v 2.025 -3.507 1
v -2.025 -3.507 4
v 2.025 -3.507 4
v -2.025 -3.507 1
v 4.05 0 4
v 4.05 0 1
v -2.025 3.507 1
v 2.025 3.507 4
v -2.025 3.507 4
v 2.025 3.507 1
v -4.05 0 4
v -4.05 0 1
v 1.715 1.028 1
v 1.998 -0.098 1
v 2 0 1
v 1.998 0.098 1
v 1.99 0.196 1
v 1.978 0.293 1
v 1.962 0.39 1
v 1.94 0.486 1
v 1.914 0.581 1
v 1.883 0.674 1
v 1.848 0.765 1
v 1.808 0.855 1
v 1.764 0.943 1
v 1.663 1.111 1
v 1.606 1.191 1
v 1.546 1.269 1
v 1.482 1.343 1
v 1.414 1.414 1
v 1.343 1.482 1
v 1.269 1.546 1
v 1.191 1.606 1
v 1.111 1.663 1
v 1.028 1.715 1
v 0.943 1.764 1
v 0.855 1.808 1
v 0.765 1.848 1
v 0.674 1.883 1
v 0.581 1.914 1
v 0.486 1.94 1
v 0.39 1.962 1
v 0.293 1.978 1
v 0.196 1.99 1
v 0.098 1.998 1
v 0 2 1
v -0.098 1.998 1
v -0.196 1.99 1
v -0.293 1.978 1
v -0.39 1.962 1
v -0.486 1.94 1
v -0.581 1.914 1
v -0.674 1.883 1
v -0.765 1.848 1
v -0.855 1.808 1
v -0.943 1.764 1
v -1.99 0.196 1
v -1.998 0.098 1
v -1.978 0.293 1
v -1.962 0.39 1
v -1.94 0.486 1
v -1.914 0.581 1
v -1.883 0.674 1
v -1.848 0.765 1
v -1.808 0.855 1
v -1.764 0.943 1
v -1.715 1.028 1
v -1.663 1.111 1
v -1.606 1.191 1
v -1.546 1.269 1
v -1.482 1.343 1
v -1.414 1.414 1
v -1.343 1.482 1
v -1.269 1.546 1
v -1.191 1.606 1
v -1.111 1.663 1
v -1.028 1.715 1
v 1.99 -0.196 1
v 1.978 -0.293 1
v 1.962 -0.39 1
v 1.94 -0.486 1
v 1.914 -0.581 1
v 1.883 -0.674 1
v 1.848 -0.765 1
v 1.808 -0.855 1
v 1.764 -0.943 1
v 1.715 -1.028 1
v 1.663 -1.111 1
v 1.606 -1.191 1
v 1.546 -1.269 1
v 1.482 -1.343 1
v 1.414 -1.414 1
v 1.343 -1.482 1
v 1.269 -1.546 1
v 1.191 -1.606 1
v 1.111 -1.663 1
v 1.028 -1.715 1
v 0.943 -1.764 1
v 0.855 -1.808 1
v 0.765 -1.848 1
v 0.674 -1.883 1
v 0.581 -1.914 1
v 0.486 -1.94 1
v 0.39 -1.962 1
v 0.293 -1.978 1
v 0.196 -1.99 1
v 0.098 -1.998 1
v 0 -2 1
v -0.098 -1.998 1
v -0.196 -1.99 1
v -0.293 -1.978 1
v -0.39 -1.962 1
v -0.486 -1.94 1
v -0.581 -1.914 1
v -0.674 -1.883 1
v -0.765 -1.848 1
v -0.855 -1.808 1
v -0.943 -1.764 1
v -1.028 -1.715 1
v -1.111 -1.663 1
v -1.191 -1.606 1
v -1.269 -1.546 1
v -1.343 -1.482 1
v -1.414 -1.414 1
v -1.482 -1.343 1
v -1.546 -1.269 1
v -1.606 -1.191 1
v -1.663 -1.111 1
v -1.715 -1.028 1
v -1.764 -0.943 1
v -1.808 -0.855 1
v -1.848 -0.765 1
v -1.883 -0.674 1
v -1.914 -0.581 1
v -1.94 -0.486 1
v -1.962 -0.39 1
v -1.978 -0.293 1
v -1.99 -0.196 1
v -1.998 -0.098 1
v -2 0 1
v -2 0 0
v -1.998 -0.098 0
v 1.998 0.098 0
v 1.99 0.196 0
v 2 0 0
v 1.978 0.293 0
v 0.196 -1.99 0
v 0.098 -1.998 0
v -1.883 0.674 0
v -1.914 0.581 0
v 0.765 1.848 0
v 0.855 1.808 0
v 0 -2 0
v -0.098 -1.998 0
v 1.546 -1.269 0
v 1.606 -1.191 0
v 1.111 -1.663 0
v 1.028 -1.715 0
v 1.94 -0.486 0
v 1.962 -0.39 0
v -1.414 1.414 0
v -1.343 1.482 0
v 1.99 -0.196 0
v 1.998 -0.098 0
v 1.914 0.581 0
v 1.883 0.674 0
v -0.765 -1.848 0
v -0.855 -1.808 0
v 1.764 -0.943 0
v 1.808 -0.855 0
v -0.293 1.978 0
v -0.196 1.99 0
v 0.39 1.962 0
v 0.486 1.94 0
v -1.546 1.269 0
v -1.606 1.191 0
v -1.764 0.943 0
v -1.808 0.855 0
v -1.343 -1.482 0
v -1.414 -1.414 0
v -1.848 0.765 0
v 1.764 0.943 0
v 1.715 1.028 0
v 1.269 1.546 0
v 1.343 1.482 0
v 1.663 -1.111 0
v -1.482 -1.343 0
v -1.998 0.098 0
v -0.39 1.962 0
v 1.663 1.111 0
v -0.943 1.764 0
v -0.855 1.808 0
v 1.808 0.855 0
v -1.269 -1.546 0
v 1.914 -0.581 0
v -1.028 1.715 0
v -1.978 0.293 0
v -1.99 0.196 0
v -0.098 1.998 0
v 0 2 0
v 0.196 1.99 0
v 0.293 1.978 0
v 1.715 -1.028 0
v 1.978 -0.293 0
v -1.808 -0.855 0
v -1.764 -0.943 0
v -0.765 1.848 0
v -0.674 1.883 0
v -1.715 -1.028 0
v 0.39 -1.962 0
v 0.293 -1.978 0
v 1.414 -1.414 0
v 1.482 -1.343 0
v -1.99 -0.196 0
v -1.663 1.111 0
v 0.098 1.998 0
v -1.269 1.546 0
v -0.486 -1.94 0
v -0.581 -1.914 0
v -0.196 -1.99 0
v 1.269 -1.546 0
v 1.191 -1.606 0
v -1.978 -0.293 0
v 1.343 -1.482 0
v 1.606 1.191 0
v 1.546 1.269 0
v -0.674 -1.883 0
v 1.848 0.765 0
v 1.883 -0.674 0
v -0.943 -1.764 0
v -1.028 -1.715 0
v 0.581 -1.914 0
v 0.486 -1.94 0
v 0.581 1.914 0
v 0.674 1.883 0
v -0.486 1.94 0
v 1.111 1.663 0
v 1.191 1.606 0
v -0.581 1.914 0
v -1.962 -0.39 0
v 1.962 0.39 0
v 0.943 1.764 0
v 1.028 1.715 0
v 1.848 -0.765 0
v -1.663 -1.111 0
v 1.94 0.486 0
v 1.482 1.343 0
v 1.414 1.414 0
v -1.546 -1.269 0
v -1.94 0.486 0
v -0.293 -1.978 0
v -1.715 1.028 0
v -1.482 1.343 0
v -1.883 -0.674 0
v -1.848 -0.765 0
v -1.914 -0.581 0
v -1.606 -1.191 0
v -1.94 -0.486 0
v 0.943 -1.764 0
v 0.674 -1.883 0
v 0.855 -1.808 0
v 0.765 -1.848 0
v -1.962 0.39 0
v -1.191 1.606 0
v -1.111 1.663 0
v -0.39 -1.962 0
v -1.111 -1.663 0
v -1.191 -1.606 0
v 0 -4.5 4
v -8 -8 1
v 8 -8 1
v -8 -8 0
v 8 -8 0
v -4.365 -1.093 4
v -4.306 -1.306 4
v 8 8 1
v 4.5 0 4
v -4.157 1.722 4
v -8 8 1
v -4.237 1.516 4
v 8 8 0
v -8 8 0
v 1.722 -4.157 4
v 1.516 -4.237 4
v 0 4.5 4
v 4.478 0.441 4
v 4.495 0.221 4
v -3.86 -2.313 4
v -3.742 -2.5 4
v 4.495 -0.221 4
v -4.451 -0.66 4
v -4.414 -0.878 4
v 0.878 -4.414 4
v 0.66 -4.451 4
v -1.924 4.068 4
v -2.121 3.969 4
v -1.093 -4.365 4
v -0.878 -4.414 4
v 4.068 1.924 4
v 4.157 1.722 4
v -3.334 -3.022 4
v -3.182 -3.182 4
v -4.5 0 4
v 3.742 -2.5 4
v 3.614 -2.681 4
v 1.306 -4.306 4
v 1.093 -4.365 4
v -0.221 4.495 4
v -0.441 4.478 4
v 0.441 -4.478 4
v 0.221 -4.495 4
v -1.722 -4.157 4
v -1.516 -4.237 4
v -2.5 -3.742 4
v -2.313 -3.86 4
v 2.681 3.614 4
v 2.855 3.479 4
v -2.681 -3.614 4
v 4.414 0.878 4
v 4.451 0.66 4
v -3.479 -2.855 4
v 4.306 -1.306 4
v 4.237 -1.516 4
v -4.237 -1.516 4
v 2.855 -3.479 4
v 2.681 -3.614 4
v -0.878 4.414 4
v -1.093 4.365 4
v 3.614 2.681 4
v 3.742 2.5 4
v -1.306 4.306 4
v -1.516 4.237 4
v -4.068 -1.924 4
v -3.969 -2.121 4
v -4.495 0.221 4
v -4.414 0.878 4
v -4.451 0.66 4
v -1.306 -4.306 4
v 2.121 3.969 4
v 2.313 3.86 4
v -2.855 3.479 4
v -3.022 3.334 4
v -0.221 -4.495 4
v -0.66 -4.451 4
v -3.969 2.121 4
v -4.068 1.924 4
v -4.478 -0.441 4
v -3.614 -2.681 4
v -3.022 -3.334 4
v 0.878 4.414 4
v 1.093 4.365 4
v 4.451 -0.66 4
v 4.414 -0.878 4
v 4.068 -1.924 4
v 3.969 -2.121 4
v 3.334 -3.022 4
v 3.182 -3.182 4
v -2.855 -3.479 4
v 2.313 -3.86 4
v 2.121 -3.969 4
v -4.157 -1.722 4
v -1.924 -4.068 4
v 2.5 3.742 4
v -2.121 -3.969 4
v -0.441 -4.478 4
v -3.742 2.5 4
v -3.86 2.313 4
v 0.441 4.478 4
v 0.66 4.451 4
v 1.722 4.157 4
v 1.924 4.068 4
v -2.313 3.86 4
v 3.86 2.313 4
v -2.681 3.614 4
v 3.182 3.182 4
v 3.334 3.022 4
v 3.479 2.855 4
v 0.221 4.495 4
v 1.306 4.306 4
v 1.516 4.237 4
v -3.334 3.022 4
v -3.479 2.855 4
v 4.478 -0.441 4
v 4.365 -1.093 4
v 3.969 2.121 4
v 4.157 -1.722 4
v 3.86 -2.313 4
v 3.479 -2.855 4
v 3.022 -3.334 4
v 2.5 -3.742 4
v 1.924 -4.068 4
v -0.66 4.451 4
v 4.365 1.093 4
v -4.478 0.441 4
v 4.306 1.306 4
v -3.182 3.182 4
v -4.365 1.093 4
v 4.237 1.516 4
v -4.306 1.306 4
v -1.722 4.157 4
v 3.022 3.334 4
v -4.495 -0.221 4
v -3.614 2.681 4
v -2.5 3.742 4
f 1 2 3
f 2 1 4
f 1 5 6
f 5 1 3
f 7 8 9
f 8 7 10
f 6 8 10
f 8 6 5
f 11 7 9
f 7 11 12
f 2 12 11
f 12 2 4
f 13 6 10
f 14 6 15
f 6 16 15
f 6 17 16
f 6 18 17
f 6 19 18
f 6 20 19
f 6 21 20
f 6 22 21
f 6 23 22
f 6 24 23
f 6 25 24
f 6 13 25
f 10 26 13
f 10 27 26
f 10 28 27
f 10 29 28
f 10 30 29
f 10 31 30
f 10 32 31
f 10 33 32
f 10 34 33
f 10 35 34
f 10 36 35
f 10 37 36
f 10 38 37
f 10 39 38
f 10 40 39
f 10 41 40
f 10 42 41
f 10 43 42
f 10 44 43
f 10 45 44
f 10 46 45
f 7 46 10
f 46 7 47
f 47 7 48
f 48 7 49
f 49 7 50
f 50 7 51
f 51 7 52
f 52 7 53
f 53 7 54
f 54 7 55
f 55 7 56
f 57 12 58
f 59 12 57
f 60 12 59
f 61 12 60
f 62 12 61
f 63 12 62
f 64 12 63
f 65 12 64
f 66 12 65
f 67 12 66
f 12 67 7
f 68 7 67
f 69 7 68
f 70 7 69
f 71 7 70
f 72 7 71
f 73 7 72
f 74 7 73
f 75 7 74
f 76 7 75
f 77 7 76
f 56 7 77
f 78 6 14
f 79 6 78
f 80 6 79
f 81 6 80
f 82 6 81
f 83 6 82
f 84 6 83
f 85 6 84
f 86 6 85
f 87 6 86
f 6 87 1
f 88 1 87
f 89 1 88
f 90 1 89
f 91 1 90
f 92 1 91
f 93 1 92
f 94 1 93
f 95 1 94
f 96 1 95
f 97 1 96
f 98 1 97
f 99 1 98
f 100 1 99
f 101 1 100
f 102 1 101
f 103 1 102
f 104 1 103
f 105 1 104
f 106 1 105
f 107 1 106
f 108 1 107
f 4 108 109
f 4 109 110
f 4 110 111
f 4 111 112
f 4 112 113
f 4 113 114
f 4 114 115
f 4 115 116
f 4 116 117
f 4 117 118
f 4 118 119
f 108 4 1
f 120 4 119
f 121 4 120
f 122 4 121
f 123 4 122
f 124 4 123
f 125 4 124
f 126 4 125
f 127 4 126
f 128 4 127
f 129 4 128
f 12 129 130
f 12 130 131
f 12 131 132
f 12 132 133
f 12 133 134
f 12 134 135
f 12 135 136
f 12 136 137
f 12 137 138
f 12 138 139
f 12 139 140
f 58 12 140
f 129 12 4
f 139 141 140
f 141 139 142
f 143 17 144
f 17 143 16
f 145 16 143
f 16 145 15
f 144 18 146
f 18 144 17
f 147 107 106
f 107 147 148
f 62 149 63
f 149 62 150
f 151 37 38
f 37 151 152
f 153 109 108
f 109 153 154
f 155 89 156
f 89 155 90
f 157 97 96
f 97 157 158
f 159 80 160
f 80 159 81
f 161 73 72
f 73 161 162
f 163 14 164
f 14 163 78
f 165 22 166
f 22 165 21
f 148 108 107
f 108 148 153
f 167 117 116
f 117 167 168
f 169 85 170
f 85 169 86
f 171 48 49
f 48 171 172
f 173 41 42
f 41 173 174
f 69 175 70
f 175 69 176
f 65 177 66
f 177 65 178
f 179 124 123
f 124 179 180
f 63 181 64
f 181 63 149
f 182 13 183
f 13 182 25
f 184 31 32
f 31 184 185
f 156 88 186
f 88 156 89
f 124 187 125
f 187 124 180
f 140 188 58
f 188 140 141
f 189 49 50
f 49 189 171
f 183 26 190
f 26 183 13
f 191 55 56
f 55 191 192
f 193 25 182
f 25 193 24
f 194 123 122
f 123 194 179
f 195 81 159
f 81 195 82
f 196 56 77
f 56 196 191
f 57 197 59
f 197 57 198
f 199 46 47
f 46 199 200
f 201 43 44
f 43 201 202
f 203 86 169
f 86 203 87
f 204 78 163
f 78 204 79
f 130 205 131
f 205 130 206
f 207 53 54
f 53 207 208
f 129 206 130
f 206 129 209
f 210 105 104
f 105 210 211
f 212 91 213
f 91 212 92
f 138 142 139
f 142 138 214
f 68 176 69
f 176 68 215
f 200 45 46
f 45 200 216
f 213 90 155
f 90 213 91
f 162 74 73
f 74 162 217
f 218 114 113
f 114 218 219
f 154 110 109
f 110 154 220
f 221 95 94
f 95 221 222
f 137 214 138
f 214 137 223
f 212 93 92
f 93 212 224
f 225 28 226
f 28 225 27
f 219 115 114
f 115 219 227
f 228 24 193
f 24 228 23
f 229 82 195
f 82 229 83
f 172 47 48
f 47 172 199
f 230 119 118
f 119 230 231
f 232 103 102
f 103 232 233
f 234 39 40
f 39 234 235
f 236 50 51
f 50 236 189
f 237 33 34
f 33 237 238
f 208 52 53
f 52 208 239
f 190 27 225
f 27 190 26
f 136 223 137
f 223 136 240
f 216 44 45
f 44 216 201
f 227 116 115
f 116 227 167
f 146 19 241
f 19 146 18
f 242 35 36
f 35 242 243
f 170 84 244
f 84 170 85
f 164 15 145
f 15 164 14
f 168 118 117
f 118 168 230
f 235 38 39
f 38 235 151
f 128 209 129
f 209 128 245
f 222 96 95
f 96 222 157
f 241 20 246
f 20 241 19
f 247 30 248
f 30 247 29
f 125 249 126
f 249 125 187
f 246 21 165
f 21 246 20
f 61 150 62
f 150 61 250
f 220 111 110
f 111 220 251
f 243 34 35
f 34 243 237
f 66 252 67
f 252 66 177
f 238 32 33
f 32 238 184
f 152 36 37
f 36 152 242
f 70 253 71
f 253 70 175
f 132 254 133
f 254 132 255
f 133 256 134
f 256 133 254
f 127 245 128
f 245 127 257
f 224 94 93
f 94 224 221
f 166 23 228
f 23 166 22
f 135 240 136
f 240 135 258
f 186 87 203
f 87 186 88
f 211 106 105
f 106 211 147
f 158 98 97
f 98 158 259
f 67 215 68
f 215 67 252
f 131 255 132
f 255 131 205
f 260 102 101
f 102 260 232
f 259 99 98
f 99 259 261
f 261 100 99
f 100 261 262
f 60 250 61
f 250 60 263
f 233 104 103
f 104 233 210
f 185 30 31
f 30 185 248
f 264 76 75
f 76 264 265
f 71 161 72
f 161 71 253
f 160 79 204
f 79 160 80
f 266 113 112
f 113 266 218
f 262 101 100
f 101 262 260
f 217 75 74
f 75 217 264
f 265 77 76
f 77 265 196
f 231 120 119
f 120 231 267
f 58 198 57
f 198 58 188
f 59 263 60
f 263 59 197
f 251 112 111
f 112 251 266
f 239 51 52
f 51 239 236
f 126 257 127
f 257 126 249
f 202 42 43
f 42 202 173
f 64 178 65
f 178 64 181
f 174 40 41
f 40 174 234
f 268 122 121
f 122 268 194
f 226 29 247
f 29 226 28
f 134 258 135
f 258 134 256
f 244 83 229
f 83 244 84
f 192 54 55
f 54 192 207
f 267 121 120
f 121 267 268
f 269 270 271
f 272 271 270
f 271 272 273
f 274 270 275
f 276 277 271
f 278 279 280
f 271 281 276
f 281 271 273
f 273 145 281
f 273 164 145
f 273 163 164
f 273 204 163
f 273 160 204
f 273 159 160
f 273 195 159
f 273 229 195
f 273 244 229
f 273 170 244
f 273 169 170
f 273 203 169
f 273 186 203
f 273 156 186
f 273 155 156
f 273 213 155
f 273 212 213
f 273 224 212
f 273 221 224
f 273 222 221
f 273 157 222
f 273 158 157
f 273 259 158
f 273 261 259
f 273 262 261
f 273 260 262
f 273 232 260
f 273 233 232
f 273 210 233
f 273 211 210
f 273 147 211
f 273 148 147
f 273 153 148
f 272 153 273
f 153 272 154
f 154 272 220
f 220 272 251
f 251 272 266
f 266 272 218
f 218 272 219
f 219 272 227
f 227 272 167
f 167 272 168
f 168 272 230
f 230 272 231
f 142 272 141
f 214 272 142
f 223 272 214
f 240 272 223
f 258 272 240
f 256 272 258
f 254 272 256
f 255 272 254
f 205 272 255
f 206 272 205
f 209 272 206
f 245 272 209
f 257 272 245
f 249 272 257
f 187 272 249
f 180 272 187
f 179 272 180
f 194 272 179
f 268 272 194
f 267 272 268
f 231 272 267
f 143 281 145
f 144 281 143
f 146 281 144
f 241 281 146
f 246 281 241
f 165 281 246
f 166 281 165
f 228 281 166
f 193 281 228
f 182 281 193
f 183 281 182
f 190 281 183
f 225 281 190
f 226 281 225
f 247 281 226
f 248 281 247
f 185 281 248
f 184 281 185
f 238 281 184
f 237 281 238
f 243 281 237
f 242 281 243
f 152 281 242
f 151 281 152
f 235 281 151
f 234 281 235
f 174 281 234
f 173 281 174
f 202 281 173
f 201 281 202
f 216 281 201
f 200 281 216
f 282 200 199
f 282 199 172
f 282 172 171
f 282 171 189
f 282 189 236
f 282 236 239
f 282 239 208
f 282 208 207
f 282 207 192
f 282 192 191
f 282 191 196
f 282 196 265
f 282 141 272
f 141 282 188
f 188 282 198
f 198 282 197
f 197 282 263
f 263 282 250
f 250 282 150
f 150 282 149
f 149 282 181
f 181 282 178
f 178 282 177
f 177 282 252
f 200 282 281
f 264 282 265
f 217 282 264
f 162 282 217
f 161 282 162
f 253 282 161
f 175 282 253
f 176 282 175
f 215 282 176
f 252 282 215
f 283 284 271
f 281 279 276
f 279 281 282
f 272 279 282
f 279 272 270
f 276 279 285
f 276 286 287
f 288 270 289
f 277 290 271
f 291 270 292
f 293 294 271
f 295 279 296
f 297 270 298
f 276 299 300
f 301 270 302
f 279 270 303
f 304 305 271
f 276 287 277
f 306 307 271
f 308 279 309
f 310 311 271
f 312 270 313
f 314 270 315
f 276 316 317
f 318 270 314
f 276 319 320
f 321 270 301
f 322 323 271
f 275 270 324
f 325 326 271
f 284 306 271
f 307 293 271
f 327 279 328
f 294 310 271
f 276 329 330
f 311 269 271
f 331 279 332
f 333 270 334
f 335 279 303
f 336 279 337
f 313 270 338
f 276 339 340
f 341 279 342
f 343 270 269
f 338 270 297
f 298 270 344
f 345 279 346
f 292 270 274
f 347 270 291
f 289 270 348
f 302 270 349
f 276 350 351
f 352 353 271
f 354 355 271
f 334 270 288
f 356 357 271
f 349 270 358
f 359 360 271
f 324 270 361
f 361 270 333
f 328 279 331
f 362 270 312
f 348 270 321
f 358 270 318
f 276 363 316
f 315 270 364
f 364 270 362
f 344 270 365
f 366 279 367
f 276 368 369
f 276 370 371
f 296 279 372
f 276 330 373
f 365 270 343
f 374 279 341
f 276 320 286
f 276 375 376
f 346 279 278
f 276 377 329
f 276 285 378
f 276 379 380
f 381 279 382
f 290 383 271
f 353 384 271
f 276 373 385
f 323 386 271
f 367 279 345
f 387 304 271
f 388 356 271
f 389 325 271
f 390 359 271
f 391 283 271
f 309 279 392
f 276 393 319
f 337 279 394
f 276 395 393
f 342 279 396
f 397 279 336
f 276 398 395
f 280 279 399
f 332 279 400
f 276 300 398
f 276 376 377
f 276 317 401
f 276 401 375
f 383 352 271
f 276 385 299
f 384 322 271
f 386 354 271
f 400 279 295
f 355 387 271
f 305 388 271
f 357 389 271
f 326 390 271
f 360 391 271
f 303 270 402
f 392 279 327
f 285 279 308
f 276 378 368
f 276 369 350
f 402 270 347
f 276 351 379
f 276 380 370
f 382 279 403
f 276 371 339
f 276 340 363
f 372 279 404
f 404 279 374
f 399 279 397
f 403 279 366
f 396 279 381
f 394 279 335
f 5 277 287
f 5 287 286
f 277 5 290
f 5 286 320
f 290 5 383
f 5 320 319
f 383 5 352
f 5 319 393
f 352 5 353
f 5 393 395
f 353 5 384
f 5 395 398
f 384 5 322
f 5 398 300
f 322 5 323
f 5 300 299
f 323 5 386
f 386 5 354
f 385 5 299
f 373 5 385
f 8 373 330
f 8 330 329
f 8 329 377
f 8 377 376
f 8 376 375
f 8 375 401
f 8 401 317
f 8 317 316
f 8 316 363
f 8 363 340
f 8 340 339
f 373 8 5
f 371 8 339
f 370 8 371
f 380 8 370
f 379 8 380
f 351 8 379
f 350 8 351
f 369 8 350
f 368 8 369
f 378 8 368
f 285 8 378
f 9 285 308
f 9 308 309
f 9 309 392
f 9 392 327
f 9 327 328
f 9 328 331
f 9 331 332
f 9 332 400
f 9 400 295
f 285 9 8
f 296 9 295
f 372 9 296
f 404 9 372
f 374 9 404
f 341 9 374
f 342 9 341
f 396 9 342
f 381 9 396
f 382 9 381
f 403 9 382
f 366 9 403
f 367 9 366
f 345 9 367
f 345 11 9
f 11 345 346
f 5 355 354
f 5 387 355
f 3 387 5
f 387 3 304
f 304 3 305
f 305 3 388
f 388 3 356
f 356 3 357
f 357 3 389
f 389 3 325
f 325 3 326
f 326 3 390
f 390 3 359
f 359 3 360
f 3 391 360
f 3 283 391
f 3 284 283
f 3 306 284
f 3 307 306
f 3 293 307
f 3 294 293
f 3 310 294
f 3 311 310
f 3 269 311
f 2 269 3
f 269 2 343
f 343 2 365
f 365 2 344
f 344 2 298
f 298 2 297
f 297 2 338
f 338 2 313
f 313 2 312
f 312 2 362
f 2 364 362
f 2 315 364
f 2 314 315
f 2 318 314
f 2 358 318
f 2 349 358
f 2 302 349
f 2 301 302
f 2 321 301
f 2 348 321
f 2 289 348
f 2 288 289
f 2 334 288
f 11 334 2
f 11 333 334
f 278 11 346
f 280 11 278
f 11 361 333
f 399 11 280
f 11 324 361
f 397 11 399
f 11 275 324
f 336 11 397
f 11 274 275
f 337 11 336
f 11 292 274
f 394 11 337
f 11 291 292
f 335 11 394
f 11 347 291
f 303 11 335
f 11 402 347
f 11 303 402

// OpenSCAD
//###############################################################################
//# Counter Nut                                                              #
//###############################################################################
//#    Copyright 2024 Dirk Heisswolf                                            #
//#    This file is part of the CableGuide project.                             #
//#                                                                             #
//#    This project is free software: you can redistribute it and/or modify     #
//#    it under the terms of the GNU General Public License as published by     #
//#    the Free Software Foundation, either version 3 of the License, or        #
//#    (at your option) any later version.                                      #
//#                                                                             #
//#    This project is distributed in the hope that it will be useful,          #
//#    but WITHOUT ANY WARRANTY; without even the implied warranty of           #
//#    MERCHANTABILITY or FITNESS FOR A PARTICULAR PURPOSE.  See the            #
//#    GNU General Public License for more details.                             #
//#                                                                             #
//#    You should have received a copy of the GNU General Public License        #
//#    along with this project.  If not, see <http://www.gnu.org/licenses/>.    #
//#                                                                             #
//###############################################################################
//# Description:                                                                #
//#   M4 counter nut                                                            #
//#                                                                             #
//###############################################################################
//# Version History:                                                            #
//#   February 18, 2025                                                         #
//#      - Initial release                                                      #
//#                                                                             #
//###############################################################################

nutD     =   8.1;
screwD   =   4;
counterW =  16;
counterD =   9;
counterH =   4;
$fn      = 128;

module counterNut() {
  difference() {
    hull() {
        translate([-counterW/2,-counterW/2,0]) cube([counterW,counterW,1]);
        cylinder(h=counterH, d=counterD);
    }
    union() {
        translate([0,0,1])  cylinder(h=10, d=nutD, $fn=6);
        translate([0,0,-1]) cylinder(h=10, d=screwD);
    }
  }
}
counterNut();
